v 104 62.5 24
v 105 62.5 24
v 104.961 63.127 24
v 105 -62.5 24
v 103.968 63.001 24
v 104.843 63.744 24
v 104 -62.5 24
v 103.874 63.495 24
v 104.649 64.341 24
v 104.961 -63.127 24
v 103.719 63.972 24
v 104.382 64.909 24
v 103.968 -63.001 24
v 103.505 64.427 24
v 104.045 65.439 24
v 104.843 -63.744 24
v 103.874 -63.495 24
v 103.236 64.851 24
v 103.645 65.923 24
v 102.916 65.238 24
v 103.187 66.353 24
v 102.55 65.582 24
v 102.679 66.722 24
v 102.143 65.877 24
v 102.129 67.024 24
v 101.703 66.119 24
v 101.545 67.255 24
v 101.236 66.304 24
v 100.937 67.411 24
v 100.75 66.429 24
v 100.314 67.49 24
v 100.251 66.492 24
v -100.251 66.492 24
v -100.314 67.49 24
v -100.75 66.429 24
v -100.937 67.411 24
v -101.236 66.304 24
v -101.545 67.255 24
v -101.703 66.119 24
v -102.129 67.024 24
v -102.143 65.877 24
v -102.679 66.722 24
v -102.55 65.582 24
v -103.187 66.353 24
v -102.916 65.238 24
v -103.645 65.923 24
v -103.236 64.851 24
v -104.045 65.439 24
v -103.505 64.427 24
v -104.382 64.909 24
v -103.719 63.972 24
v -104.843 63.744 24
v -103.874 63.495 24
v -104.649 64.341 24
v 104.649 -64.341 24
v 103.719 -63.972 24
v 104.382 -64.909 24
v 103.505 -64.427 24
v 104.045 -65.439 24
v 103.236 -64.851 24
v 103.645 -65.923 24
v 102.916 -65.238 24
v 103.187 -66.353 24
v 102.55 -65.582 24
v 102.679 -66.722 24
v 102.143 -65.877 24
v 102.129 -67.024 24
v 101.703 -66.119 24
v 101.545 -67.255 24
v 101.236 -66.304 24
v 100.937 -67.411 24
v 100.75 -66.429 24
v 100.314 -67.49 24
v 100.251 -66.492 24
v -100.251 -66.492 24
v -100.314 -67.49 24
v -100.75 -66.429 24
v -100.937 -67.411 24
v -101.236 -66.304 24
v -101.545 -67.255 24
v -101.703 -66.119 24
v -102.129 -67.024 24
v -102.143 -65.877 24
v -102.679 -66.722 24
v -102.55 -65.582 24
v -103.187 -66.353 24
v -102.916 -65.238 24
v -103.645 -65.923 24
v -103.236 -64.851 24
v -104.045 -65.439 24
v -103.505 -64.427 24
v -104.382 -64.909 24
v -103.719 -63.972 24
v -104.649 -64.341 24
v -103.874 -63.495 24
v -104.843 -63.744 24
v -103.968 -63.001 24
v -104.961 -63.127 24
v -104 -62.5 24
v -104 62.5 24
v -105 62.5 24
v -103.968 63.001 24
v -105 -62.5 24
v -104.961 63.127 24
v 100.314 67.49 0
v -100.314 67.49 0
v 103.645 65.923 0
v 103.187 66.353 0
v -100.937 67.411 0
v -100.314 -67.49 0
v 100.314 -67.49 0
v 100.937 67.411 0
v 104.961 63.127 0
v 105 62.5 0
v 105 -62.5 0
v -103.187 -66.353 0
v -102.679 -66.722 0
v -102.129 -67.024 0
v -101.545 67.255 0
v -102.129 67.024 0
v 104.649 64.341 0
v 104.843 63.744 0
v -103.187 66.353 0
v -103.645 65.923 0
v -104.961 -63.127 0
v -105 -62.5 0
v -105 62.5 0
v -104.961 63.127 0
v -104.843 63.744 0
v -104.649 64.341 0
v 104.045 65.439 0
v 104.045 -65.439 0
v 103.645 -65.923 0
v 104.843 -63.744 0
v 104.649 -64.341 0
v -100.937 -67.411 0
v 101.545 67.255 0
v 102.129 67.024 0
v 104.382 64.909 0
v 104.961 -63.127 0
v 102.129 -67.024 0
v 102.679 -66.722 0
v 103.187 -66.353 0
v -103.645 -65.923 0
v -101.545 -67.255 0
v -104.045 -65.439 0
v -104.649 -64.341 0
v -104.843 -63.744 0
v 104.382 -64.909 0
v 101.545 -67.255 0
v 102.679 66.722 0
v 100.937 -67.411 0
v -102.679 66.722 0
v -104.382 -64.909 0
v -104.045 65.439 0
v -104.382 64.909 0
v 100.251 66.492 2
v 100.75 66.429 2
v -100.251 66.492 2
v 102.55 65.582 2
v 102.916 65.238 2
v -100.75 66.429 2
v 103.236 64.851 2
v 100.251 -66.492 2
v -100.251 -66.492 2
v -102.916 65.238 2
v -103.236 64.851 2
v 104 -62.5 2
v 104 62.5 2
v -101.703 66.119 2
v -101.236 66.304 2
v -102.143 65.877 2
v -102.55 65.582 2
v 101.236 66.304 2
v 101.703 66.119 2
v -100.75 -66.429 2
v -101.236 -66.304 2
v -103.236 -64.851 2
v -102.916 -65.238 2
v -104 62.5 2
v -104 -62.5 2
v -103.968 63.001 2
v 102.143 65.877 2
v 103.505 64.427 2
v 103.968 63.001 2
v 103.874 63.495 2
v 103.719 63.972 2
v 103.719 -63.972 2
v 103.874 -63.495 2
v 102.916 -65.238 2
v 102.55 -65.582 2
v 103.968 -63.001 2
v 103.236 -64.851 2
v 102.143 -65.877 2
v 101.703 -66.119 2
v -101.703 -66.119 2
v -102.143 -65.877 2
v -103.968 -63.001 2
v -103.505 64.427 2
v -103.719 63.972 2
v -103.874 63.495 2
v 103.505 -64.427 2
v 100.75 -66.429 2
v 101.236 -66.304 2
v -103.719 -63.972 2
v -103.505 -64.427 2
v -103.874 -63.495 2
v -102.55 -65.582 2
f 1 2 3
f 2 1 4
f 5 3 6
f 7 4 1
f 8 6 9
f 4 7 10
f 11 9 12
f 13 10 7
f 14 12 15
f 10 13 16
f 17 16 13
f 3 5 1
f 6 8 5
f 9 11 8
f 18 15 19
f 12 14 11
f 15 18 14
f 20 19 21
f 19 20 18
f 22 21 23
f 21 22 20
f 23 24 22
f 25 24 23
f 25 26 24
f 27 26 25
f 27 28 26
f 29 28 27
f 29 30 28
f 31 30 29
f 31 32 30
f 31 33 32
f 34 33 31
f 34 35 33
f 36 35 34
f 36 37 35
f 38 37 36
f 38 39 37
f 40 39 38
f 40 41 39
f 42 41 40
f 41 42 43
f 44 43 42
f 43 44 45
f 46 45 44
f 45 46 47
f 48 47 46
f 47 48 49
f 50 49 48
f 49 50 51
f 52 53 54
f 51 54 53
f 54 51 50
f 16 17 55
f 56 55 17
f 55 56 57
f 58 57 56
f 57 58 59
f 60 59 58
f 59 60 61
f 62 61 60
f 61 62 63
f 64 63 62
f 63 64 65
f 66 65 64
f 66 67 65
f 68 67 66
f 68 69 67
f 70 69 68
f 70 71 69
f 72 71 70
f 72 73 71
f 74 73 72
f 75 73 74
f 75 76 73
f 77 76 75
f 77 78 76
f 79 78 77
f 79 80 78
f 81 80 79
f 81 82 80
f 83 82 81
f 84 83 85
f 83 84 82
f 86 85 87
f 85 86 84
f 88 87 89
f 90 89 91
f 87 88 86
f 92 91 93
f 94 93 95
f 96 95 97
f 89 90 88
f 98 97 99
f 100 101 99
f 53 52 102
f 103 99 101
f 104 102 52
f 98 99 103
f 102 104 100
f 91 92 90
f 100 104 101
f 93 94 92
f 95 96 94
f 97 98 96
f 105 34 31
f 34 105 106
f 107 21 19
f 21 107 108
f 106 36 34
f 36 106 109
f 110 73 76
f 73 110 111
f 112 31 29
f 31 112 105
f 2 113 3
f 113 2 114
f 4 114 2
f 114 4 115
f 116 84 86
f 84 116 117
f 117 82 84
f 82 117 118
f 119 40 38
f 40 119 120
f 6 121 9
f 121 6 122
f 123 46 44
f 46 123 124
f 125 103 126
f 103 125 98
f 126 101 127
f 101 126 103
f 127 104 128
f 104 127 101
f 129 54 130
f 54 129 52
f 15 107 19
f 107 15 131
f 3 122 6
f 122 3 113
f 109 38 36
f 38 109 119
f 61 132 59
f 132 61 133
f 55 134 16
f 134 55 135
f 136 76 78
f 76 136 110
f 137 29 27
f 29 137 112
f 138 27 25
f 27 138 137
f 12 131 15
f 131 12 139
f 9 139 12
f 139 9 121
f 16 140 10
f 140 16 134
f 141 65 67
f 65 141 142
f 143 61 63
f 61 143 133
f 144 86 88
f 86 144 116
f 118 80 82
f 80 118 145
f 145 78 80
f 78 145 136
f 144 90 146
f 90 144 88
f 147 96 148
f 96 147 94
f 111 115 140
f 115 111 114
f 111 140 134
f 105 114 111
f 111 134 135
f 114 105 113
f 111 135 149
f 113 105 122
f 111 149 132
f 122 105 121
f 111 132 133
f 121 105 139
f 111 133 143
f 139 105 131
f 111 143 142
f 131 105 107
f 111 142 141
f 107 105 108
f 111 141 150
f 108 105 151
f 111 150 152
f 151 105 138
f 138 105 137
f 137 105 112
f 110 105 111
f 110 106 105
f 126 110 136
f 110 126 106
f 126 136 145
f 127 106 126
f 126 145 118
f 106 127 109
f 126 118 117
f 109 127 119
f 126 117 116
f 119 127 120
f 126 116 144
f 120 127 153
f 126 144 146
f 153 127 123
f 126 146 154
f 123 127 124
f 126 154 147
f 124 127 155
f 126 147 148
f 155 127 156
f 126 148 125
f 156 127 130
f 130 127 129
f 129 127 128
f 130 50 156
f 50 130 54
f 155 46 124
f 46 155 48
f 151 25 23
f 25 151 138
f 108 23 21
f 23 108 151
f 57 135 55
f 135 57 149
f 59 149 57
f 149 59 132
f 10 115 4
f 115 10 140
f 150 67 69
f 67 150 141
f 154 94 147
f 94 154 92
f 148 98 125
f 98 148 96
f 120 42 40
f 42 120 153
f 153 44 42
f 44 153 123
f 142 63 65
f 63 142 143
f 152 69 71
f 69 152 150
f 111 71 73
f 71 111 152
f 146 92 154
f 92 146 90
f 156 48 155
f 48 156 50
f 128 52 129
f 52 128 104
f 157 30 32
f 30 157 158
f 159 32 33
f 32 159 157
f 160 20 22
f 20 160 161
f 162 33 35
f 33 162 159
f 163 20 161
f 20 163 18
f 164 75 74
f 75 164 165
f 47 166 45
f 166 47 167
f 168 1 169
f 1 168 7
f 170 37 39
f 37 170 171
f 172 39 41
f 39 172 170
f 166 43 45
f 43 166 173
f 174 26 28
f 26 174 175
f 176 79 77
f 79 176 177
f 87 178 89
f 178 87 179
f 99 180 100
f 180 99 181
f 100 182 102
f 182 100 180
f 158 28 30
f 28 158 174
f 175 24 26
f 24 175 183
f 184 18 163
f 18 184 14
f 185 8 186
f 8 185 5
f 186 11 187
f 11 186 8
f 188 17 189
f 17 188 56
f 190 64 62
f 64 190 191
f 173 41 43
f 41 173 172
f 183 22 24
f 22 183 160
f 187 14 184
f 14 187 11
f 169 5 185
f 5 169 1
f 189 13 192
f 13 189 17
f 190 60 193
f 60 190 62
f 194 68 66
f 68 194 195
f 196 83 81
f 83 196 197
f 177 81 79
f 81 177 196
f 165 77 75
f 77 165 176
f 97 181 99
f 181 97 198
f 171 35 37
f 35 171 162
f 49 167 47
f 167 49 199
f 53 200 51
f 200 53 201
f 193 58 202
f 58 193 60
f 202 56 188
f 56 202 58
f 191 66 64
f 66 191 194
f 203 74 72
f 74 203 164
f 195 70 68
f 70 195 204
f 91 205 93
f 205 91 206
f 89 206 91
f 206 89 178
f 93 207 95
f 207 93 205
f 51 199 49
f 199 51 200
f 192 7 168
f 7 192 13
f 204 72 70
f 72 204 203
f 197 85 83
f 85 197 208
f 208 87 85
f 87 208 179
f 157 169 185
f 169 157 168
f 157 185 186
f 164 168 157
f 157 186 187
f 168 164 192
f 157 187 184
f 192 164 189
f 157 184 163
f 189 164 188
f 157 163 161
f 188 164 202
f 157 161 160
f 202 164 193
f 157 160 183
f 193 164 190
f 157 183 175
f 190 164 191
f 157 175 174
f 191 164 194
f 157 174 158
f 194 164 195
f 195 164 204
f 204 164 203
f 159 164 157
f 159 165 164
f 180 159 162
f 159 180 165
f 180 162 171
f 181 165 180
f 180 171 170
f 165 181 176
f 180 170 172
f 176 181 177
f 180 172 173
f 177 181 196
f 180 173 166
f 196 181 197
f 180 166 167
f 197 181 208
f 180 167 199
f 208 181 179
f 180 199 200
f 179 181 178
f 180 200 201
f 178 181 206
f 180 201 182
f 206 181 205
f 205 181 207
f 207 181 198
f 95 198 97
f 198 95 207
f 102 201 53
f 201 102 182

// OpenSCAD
$fn = 50;


difference() {
	union() {
		hull() {
			translate(v = [-100.0000000000, 62.5000000000, 0]) {
				cylinder(h = 24, r = 5);
			}
			translate(v = [100.0000000000, 62.5000000000, 0]) {
				cylinder(h = 24, r = 5);
			}
			translate(v = [-100.0000000000, -62.5000000000, 0]) {
				cylinder(h = 24, r = 5);
			}
			translate(v = [100.0000000000, -62.5000000000, 0]) {
				cylinder(h = 24, r = 5);
			}
		}
	}
	union() {
		translate(v = [0, 0, 2]) {
			hull() {
				translate(v = [-100.0000000000, 62.5000000000, 0]) {
					cylinder(h = 22, r = 4);
				}
				translate(v = [100.0000000000, 62.5000000000, 0]) {
					cylinder(h = 22, r = 4);
				}
				translate(v = [-100.0000000000, -62.5000000000, 0]) {
					cylinder(h = 22, r = 4);
				}
				translate(v = [100.0000000000, -62.5000000000, 0]) {
					cylinder(h = 22, r = 4);
				}
			}
		}
	}
}
